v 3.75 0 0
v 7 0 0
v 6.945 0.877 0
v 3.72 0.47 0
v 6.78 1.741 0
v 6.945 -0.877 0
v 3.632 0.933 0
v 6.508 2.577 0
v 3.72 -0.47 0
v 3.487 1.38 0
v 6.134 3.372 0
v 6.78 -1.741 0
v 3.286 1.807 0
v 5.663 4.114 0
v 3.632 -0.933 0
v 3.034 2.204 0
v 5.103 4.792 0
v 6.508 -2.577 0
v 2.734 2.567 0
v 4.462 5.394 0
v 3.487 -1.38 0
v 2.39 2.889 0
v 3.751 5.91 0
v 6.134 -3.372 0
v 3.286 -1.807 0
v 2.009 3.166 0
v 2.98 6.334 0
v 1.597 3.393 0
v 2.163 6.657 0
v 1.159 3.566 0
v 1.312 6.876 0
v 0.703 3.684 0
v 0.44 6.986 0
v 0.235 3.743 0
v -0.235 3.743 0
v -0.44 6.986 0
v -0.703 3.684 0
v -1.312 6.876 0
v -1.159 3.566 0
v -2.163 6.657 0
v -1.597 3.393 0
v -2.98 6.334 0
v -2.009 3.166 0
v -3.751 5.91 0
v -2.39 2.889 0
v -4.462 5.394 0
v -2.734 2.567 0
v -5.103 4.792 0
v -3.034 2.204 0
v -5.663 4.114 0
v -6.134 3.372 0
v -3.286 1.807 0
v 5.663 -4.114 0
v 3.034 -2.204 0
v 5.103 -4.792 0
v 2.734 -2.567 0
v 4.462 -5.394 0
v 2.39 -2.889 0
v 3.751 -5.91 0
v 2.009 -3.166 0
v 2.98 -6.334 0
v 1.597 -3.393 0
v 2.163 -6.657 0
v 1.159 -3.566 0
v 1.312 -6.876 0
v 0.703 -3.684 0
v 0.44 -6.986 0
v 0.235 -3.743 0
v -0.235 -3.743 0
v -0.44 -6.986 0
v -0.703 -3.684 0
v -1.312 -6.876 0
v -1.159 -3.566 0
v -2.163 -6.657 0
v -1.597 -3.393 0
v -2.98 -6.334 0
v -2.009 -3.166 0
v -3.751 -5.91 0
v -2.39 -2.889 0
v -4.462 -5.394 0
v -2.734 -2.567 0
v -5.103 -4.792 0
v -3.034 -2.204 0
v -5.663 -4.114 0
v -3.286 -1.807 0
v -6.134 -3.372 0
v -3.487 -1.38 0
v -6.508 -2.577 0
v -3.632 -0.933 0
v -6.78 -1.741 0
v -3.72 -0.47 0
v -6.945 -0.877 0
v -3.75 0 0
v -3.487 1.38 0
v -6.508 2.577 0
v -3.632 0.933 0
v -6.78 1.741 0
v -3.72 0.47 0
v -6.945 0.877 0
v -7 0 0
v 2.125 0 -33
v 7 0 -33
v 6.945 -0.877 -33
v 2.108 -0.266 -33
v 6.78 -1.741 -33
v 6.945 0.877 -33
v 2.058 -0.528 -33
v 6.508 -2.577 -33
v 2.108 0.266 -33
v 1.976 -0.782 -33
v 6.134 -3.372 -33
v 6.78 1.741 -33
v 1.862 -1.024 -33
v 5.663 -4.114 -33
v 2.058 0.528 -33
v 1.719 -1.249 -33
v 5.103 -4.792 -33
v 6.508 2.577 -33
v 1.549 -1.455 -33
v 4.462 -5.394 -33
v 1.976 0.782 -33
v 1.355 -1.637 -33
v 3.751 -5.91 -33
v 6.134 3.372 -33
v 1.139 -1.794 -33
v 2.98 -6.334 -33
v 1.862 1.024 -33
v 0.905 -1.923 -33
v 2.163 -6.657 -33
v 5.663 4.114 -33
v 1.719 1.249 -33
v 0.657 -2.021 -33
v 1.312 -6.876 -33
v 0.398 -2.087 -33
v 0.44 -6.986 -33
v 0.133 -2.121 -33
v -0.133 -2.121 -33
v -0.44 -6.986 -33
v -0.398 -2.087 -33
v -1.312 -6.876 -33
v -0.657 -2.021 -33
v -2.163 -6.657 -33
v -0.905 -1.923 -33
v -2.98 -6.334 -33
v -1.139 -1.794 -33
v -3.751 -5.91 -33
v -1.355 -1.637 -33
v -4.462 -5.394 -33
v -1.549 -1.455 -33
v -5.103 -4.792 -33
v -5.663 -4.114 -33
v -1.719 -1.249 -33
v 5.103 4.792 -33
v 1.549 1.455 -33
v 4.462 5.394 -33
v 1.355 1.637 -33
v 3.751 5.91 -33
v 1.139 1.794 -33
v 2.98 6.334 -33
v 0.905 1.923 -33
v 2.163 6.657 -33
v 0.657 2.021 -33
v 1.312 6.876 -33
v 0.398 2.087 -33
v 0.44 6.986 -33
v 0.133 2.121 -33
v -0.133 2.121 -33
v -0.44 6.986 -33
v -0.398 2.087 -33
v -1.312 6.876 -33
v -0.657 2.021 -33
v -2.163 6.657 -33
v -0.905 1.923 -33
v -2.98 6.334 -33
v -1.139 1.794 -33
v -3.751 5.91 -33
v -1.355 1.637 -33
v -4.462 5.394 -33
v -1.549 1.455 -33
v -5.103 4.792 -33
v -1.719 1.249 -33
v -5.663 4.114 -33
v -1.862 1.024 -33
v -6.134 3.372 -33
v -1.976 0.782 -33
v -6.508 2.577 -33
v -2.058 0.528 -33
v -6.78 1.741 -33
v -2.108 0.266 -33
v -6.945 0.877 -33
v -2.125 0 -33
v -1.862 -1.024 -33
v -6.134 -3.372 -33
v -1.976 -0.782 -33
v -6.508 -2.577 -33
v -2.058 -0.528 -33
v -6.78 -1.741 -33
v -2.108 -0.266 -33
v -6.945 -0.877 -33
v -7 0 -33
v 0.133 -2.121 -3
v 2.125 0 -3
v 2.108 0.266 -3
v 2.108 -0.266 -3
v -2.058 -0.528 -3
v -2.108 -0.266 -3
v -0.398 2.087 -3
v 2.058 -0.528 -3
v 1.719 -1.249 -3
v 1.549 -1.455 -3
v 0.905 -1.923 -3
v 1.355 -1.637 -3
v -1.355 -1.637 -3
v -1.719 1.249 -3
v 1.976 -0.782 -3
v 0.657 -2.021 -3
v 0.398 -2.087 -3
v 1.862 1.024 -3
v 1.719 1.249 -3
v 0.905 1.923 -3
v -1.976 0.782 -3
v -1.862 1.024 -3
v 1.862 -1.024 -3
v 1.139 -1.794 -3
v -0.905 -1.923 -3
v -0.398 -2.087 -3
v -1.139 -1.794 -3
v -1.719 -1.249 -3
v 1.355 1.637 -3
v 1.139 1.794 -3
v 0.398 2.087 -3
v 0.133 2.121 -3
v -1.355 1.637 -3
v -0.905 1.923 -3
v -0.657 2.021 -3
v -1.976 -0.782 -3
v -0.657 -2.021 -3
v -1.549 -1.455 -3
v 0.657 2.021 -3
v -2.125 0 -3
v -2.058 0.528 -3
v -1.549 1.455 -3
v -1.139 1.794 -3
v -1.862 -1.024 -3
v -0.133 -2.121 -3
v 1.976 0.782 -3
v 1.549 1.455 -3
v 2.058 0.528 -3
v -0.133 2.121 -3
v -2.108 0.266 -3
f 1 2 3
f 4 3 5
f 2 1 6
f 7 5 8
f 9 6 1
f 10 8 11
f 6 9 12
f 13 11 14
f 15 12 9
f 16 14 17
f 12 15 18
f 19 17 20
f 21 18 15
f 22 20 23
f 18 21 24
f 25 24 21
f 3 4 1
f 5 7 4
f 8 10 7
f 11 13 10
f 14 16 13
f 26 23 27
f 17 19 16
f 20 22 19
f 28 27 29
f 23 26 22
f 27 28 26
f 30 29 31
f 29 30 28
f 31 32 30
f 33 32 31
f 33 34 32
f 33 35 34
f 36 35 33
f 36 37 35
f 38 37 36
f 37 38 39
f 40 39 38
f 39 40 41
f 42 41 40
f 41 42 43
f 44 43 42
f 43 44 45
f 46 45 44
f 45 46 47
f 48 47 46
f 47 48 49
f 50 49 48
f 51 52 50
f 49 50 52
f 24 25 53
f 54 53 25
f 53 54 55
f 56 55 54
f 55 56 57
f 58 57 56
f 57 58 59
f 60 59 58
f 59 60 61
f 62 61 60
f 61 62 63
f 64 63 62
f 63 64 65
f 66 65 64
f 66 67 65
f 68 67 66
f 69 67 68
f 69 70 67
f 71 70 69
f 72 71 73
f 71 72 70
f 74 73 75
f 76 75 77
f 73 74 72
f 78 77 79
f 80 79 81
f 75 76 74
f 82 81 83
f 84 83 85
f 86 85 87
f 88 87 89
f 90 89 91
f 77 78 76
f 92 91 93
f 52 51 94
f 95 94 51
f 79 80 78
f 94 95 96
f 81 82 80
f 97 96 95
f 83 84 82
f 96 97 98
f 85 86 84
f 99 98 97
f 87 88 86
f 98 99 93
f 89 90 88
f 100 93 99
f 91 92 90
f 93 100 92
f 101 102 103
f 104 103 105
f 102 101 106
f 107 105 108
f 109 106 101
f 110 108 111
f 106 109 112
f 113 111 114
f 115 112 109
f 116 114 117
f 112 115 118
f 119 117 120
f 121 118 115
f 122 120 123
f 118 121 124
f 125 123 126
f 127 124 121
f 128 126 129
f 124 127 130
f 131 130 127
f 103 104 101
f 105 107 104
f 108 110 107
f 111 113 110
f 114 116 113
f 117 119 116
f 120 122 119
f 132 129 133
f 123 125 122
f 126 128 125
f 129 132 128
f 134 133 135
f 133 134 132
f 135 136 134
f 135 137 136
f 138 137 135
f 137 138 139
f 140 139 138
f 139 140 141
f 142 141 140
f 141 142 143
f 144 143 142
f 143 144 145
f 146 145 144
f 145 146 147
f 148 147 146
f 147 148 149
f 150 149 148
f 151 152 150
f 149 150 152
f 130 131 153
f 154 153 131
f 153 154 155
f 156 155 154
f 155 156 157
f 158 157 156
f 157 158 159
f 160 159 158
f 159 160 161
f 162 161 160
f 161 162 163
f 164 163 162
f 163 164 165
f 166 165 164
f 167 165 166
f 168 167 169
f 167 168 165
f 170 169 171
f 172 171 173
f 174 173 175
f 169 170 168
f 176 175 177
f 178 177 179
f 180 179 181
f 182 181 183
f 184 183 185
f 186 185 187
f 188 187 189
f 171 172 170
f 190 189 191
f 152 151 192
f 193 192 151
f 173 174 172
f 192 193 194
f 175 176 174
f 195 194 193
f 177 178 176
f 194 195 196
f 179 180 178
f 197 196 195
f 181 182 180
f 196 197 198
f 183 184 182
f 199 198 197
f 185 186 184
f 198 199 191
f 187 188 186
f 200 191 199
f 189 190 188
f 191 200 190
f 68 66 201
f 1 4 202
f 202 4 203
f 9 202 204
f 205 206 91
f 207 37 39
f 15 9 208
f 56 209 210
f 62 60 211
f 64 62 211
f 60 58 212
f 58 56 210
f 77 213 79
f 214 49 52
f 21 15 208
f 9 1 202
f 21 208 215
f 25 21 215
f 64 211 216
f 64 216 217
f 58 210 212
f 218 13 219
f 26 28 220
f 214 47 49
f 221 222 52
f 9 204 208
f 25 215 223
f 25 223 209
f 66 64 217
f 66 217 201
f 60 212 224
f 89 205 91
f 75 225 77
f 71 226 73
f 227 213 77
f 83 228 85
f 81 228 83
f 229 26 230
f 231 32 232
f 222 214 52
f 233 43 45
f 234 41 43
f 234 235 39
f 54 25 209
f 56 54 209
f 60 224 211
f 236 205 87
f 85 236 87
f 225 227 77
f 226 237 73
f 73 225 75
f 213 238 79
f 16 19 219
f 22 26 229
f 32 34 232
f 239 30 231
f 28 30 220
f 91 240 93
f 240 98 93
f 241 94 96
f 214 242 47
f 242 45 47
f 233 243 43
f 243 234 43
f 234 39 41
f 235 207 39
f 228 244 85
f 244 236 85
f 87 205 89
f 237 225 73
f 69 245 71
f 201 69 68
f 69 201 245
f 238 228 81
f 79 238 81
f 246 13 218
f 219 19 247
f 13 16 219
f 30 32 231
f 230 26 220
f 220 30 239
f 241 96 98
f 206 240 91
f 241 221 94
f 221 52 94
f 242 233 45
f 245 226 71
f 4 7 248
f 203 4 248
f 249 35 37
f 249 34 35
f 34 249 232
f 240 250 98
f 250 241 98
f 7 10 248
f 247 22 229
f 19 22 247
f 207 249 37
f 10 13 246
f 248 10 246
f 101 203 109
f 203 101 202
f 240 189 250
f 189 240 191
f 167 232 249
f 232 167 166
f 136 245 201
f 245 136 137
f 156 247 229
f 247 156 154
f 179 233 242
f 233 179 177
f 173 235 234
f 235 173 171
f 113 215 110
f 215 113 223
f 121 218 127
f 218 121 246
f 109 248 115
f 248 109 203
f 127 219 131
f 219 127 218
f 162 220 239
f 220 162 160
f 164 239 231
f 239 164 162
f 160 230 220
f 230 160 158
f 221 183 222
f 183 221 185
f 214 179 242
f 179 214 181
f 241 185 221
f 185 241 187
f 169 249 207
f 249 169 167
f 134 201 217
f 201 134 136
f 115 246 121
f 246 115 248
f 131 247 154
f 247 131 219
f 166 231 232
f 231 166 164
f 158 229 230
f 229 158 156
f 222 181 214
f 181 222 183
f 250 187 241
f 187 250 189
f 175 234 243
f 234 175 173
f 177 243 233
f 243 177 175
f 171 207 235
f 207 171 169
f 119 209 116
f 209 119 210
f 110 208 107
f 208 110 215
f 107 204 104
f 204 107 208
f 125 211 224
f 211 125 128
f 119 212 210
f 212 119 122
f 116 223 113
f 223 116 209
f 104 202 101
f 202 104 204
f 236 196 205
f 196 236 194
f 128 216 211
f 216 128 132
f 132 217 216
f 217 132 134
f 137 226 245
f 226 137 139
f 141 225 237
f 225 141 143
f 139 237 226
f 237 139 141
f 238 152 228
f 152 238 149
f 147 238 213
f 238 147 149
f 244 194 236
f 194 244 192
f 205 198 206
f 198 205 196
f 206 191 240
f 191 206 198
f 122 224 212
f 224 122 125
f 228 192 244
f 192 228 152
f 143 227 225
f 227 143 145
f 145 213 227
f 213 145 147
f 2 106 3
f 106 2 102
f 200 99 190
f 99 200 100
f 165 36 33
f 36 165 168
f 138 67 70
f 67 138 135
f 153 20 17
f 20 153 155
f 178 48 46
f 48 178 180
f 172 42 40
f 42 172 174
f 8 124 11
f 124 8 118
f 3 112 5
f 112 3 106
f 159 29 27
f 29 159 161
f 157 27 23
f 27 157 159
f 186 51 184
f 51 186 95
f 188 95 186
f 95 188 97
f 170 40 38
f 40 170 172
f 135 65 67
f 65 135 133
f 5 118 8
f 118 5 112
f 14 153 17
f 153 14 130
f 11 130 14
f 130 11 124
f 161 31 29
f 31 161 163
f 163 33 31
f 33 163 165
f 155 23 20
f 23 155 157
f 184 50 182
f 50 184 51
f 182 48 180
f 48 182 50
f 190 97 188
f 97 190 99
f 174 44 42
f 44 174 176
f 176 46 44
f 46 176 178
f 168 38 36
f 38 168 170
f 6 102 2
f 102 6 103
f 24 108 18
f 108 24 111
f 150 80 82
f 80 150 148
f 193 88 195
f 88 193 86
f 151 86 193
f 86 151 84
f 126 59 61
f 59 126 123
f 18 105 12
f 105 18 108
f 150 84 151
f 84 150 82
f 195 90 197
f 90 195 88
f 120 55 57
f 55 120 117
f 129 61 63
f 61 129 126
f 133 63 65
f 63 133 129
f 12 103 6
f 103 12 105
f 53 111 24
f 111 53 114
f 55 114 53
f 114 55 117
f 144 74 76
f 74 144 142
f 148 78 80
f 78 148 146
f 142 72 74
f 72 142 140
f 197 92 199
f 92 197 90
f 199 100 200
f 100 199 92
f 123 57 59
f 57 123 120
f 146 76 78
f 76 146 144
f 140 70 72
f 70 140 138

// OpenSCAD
$fn = 50;


difference() {
	union() {
		translate(v = [0, 0, -33.0000000000]) {
			cylinder(h = 33, r = 7.0000000000);
		}
	}
	union() {
		translate(v = [0, 0, 0]) {
			rotate(a = [0, 0, 0]) {
				difference() {
					union() {
						#translate(v = [0, 0, -33.0000000000]) {
							cylinder(h = 33, r = 2.0000000000);
						}
						#translate(v = [0, 0, -3]) {
							cylinder(h = 3, r = 7.0000000000, r1 = 2.1250000000, r2 = 3.7500000000);
						}
						#translate(v = [0, 0, -33.0000000000]) {
							cylinder(h = 33, r = 2.1250000000);
						}
						#translate(v = [0, 0, -33.0000000000]) {
							cylinder(h = 33, r = 2.0000000000);
						}
					}
					union();
				}
			}
		}
	}
}
